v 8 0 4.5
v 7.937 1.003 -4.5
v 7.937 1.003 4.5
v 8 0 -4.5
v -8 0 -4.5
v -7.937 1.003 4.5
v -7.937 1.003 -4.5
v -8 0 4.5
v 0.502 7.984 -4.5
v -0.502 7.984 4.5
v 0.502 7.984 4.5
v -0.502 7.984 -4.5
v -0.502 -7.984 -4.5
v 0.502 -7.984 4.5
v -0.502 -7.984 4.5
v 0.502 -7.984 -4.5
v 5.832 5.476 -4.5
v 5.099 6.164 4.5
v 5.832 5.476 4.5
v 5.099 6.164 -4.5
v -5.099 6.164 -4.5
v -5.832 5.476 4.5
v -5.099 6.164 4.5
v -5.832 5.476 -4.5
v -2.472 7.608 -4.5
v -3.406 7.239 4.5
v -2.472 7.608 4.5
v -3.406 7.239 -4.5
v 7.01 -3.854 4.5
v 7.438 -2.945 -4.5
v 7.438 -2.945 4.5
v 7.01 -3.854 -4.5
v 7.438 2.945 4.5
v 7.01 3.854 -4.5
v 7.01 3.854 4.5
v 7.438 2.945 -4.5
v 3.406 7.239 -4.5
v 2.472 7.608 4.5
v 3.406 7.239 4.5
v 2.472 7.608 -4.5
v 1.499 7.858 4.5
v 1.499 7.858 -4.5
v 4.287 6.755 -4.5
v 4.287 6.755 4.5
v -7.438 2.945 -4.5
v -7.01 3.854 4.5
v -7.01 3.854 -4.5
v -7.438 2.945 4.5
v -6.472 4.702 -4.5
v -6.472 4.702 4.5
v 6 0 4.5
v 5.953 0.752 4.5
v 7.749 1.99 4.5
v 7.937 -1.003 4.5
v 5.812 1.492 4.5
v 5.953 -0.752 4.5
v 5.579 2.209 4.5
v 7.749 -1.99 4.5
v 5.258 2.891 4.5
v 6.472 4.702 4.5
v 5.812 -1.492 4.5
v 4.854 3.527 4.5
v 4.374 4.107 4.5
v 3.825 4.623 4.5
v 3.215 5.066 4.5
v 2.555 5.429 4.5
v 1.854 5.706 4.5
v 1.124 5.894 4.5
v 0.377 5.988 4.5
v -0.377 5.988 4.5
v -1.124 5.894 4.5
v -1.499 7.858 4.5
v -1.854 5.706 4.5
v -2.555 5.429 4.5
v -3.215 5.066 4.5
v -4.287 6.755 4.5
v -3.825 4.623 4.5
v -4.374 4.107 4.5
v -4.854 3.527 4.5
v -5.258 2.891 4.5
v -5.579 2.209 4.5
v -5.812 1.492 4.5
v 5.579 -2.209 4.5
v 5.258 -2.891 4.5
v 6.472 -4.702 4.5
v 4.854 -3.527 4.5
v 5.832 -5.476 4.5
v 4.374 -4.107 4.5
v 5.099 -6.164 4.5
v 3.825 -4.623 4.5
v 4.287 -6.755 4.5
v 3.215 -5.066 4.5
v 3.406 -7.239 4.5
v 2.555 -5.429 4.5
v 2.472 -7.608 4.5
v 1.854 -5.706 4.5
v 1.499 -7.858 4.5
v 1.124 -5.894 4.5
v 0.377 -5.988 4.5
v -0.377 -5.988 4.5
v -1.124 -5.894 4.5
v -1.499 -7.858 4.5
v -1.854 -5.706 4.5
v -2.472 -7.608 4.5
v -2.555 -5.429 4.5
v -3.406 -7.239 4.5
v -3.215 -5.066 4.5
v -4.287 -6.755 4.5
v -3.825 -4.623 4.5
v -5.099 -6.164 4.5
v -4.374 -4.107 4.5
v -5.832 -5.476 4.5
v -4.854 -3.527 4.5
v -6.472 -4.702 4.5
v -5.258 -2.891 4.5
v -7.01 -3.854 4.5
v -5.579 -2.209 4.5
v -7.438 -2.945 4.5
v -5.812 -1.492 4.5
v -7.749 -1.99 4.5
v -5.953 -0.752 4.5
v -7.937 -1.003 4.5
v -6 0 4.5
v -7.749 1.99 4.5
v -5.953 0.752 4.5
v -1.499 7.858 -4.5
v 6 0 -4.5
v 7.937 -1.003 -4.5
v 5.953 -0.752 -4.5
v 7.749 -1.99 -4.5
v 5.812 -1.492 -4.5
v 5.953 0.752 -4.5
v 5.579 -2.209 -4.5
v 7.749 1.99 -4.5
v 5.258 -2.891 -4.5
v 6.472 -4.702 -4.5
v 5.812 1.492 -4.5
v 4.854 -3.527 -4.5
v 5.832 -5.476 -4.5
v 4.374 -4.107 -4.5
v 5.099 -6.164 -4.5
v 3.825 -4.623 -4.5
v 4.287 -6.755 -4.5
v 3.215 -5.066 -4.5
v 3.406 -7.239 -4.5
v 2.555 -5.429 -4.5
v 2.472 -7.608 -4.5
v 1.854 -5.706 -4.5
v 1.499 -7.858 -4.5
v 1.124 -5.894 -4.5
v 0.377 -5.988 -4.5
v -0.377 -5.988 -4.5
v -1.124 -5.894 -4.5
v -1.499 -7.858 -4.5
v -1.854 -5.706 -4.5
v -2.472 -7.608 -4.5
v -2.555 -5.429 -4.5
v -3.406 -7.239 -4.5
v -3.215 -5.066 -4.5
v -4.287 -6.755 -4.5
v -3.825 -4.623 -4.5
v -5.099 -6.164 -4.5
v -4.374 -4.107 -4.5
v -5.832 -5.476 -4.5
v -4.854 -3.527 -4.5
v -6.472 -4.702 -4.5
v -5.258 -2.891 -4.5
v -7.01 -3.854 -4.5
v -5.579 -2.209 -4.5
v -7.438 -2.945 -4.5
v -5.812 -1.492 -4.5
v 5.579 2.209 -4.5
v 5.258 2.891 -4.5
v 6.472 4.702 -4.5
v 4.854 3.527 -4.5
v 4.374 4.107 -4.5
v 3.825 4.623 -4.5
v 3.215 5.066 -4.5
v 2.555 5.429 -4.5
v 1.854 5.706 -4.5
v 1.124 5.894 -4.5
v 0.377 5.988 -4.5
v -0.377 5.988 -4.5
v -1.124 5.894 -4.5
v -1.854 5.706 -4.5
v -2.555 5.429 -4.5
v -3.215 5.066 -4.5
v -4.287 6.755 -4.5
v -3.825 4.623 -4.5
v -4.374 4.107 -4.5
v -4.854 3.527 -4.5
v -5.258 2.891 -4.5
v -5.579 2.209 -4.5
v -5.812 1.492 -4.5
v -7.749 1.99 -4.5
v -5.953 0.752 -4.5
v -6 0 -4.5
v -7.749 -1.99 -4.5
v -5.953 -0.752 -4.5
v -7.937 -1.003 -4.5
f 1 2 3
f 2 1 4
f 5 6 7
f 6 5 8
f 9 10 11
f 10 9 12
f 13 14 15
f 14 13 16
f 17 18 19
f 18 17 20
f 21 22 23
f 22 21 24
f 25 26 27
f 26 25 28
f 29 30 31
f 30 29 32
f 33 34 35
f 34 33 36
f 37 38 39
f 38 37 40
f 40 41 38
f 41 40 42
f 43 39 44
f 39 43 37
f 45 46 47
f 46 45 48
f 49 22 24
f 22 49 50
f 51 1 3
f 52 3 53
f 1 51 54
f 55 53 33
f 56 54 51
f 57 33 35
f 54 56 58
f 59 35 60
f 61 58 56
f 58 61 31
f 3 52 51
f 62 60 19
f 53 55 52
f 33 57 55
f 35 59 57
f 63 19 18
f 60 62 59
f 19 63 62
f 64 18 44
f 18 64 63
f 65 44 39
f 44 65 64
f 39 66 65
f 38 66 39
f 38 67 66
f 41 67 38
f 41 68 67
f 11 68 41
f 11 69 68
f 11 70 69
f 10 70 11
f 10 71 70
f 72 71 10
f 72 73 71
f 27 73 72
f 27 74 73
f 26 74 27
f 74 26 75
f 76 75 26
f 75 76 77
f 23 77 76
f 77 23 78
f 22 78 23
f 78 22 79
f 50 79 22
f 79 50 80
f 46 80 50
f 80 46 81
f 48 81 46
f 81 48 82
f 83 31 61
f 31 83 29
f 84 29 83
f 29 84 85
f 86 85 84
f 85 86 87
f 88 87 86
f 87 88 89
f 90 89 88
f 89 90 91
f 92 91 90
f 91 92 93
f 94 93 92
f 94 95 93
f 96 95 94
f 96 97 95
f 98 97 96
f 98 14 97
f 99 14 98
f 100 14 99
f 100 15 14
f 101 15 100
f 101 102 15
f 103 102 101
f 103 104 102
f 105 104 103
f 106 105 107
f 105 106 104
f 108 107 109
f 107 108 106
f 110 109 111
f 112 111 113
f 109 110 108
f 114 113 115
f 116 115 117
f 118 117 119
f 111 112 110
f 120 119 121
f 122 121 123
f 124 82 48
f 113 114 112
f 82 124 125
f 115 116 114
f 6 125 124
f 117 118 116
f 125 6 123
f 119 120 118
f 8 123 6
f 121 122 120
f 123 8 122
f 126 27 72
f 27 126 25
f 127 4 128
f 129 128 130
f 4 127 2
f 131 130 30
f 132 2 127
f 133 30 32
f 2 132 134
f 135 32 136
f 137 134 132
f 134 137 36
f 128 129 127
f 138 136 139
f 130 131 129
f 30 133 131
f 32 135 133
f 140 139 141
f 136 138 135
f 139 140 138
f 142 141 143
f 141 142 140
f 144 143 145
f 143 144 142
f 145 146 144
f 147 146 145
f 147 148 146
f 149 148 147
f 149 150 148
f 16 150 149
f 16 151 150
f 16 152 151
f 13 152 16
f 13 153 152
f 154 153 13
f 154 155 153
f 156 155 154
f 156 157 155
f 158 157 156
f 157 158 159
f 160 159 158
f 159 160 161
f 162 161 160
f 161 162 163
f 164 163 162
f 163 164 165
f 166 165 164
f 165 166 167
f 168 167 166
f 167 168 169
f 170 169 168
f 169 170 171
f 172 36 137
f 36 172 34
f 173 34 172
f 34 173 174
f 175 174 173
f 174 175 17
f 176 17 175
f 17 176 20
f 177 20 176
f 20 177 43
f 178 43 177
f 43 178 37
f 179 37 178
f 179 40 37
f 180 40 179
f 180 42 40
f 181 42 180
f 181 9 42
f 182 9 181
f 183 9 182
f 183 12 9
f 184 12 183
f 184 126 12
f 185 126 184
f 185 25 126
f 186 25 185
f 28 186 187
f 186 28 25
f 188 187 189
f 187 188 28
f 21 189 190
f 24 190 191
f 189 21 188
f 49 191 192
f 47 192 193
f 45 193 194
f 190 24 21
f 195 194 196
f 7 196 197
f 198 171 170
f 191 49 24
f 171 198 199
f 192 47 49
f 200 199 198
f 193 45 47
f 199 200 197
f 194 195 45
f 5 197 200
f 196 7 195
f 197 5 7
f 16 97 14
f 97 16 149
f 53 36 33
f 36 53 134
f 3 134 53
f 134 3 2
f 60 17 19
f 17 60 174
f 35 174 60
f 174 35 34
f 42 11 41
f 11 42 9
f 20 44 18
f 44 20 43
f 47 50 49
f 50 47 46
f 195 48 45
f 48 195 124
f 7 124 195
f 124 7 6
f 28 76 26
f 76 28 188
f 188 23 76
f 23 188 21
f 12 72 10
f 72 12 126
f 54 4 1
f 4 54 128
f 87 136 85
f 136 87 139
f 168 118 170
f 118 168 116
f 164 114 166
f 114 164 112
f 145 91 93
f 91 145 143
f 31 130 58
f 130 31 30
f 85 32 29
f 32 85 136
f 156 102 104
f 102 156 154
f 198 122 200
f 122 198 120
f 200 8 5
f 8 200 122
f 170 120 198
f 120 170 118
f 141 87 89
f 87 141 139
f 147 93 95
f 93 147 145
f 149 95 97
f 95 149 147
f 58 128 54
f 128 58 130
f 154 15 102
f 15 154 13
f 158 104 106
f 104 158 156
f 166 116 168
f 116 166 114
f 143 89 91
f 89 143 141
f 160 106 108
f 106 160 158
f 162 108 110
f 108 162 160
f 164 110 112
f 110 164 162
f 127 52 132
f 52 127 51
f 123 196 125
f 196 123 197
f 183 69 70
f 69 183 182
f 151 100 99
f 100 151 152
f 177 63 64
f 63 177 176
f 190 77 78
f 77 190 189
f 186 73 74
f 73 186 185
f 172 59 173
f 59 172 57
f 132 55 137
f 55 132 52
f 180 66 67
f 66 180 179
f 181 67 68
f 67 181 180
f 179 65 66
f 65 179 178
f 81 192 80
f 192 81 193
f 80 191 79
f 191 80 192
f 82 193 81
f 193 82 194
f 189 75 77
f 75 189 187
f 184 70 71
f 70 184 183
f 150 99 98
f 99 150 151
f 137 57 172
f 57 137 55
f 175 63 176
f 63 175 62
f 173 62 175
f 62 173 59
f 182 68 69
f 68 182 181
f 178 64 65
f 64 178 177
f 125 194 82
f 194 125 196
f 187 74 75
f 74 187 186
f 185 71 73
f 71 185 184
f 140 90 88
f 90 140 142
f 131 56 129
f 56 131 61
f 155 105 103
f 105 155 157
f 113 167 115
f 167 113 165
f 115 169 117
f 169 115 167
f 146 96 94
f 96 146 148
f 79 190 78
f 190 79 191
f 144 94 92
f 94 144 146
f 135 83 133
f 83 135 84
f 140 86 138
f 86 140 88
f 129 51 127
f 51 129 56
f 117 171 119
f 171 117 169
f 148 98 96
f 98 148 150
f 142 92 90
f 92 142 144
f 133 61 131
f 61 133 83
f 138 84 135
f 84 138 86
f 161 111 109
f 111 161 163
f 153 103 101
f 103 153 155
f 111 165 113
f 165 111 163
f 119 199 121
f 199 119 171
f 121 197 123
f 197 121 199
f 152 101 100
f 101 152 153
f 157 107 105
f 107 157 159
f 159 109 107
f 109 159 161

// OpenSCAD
$fn = 50;


difference() {
	union() {
		translate(v = [0, 0, -4.5000000000]) {
			cylinder(h = 9, r = 8.0000000000);
		}
	}
	union() {
		translate(v = [0, 0, -100.0000000000]) {
			cylinder(h = 200, r = 6);
		}
	}
}
